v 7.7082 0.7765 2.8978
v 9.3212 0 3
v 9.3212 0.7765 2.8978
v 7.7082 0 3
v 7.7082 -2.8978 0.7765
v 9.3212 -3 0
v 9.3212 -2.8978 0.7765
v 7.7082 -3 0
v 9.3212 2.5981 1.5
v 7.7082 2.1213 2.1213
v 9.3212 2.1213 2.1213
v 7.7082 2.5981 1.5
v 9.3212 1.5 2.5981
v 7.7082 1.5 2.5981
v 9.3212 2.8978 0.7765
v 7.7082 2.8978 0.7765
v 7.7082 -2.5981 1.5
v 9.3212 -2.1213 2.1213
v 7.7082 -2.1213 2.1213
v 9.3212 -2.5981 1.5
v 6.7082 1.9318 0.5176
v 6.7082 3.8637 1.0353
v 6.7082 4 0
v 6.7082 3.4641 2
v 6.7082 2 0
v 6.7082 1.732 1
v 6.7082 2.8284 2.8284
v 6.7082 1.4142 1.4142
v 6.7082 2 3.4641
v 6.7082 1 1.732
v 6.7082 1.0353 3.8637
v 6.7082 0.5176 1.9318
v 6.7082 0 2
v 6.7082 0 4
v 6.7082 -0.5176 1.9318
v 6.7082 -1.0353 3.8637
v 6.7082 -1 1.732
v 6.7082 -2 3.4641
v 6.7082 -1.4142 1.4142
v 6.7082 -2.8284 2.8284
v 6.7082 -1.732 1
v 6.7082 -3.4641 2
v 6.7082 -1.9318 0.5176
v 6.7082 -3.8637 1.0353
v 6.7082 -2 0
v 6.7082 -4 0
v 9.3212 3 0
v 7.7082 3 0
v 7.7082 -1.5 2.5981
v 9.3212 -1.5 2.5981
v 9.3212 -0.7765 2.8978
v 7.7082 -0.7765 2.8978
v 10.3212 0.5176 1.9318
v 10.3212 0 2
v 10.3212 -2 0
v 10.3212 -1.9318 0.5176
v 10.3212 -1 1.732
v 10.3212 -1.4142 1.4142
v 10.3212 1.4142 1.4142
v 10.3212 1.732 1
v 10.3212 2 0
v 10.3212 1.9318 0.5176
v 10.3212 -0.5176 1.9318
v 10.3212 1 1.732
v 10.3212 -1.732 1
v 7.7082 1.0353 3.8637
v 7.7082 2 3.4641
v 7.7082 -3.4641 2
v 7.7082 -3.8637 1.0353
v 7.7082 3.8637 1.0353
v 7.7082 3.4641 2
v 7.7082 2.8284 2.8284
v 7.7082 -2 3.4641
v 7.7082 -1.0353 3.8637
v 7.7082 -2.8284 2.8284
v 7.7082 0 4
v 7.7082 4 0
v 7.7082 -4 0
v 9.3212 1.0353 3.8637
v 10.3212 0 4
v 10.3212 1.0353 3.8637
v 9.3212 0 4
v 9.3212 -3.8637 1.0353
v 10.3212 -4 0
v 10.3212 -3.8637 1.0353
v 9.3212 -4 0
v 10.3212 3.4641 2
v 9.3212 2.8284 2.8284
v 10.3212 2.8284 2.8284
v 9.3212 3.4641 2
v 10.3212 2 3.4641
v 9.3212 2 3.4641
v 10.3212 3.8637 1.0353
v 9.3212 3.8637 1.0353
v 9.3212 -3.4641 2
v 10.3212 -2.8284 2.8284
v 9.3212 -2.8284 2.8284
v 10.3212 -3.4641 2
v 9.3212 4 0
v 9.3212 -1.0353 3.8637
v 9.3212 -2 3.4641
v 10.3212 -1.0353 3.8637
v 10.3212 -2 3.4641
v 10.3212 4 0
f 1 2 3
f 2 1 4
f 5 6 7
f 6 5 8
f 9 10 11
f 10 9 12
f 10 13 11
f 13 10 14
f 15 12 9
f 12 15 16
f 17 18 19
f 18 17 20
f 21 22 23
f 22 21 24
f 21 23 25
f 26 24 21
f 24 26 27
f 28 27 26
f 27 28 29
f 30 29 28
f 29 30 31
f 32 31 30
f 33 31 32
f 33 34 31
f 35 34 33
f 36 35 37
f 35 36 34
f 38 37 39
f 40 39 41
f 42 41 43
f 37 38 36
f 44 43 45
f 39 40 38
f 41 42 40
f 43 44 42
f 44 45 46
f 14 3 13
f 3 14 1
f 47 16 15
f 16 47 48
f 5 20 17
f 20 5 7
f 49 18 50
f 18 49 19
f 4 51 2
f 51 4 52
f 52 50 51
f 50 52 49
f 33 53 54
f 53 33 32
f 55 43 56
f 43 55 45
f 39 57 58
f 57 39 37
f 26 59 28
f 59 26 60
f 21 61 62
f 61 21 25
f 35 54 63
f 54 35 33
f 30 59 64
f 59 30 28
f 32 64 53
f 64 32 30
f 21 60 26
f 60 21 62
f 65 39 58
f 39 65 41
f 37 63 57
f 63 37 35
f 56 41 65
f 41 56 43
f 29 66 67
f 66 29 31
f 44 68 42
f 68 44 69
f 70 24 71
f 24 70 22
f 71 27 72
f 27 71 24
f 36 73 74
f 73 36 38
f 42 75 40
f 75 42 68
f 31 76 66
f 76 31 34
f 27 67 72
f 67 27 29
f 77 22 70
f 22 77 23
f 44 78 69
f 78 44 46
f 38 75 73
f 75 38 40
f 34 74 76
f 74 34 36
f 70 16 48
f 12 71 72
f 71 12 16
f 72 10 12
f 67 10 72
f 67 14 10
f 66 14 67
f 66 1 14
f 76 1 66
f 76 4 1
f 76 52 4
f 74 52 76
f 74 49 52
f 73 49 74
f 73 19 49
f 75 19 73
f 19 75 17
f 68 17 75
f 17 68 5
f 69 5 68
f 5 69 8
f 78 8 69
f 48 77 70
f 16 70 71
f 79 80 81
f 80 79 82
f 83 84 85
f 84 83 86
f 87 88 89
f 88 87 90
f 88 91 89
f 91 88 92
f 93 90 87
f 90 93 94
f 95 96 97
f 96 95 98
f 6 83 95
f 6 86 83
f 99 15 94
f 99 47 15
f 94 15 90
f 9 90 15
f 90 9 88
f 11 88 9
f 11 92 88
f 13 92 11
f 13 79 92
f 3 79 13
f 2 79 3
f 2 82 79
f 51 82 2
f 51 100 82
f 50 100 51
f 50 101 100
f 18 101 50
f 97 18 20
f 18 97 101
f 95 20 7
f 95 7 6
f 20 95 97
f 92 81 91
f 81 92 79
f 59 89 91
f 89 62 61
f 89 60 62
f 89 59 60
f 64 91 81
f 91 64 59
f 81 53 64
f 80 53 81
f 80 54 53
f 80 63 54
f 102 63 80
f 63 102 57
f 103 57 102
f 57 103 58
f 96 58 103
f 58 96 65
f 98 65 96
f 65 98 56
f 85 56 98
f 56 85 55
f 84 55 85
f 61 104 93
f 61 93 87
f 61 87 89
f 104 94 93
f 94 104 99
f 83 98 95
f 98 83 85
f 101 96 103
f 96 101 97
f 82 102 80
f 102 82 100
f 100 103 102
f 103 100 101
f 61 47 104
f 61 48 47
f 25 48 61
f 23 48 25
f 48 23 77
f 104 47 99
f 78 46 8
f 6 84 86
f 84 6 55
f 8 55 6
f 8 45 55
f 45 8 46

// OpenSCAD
// file: ../build_environments.scad
// build_environments.scad: modules to build level sections
//

module pool(diameter=10.0, wall_height=2.0, step_width=3.0, connections=[])
{
    difference() {
        union() {
        difference() {
            cylinder(h=0.5,r1=diameter+step_width,r2=diameter+step_width,$fn=48);
            translate([0,0,-0.1])
                cylinder(h=0.7,r1=diameter,r2=diameter,$fn=48);
        }
        difference() {
            cylinder(h=wall_height,r1=diameter+step_width+1.0,r2=diameter+step_width+1.0,$fn=48);
            translate([0,0,-0.1])
                cylinder(h=wall_height+0.2,r1=diameter+step_width,r2=diameter+step_width,$fn=48);
        }
        }
    
        for (c = connections)
        {
            rotate([0,90,0]) {
                angle = atan2(c[1],c[0]);
                rotate([-angle,0,0]) {
                    cylinder(h=diameter+5.0,r1=c[2],r2=c[2],$fn=48);
                }
            }
        }
    }
}

module straight(length=10.0, width=2.0, dy1=0.0, dy2=0.0, dz=0.0)
{
    dims = [0, 0, 0, 0, 0, (dz/length)];
    matrix = [
        [ 1, dims[0], dims[1], 0 ],
        [ dims[2], 1, dims[4], 0 ],
        [ dims[5], dims[3], 1, 0 ],
        [ 0, 0, 0, 1 ]
    ];
    multmatrix(matrix)
    difference() {
        translate([dy1,0,0])
        union() {
            rotate([0,90,0]) {
                difference() {
                    cylinder(h=(length-dy1-dy2),r1=width+1.0,r2=width+1.0,$fn=24);
                    translate([0,0,-0.1])
                        cylinder(h=(length-dy1-dy2+0.2),r1=width,r2=width,$fn=24);
                }
                difference() {
                    cylinder(h=1.0,r1=width+2.0,r2=width+2.0,$fn=24);
                    translate([0,0,-0.1])
                        cylinder(h=1.2,r1=width,r2=width,$fn=24);
                }
                translate([0,0,(length-dy1-dy2)-1.0]) {
                    difference() {
                        cylinder(h=1.0,r1=width+2.0,r2=width+2.0,$fn=24);
                        translate([0,0,-0.1])
                            cylinder(h=1.2,r1=width,r2=width,$fn=24);
                    }
                }
            }
        }
        translate([0,0,-(2*width+4.0)/2])
            cube([3*length,3*length,2*width+4.0],center=true);
    }
}

module curve(p0=[0,0], center=[0,0], dir=1, angle=0.0, width=2.0)
{
    radius = sqrt((p0[0]-center[0])*(p0[0]-center[0]) + (p0[1]-center[1])*(p0[1]-center[1]));
    if (dir == 0) {
        difference() {
            rotate([0,0,-90])
            difference() {
                rotate_extrude(angle = angle, convexity = 10, $fn=32)
                    translate([radius, 0, 0])
                        circle(r = width+1.0,$fn=24);
                rotate([0,0,-1.0])
                    rotate_extrude(angle = angle+2.0, convexity = 10, $fn=32)
                        translate([radius, 0, 0])
                            circle(r = width,$fn=24);
            }
            translate([0,0,-(2*width+4.0)/2])
                cube([5*radius,5*radius,2*width+4.0],center=true);
        }
    }
    else {
        difference() {
            rotate([0,0,90])
            difference() {
                rotate_extrude(angle = -angle, convexity = 10, $fn=32)
                    translate([radius, 0, 0])
                        circle(r = width+1.0,$fn=24);
                rotate([0,0,1.0])
                    rotate_extrude(angle = -angle-2.0, convexity = 10, $fn=32)
                        translate([radius, 0, 0])
                            circle(r = width,$fn=24);
            }
            translate([0,0,-(2*width+4.0)/2])
                cube([5*radius,5*radius,2*width+4.0],center=true);
        }
    }

}

// test pool
//pool(diameter=12.0000, wall_height=3.0000, step_width=3.0000, connections=[[0.0000,-26.0000,2.0000], [23.6074,0.0000,2.0000]]);

// test straight, slope
//straight(length=26.0000, width=2.0000, dy1=11.8322, dy2=6.7082, dz=0.0000);
//straight(length=29.1549, width=12.0000, dy1=0.0000, dy2=0.0000, dz=-15.0000);

// test curve
//curve(p0=[23.6074, 0.0000], center=[23.6074, 5.0000], dir=0, angle=60.1011, width=2.0000);
//curve(p0=[33.6426, 12.4219], center=[37.9771, 9.9295], dir=1, angle=120.4627, width=2.0000);
// main file
use <../build_environments.scad>;
straight(length=17.0294, width=2.0000, dy1=6.7082, dy2=6.7082, dz=0.0000);
